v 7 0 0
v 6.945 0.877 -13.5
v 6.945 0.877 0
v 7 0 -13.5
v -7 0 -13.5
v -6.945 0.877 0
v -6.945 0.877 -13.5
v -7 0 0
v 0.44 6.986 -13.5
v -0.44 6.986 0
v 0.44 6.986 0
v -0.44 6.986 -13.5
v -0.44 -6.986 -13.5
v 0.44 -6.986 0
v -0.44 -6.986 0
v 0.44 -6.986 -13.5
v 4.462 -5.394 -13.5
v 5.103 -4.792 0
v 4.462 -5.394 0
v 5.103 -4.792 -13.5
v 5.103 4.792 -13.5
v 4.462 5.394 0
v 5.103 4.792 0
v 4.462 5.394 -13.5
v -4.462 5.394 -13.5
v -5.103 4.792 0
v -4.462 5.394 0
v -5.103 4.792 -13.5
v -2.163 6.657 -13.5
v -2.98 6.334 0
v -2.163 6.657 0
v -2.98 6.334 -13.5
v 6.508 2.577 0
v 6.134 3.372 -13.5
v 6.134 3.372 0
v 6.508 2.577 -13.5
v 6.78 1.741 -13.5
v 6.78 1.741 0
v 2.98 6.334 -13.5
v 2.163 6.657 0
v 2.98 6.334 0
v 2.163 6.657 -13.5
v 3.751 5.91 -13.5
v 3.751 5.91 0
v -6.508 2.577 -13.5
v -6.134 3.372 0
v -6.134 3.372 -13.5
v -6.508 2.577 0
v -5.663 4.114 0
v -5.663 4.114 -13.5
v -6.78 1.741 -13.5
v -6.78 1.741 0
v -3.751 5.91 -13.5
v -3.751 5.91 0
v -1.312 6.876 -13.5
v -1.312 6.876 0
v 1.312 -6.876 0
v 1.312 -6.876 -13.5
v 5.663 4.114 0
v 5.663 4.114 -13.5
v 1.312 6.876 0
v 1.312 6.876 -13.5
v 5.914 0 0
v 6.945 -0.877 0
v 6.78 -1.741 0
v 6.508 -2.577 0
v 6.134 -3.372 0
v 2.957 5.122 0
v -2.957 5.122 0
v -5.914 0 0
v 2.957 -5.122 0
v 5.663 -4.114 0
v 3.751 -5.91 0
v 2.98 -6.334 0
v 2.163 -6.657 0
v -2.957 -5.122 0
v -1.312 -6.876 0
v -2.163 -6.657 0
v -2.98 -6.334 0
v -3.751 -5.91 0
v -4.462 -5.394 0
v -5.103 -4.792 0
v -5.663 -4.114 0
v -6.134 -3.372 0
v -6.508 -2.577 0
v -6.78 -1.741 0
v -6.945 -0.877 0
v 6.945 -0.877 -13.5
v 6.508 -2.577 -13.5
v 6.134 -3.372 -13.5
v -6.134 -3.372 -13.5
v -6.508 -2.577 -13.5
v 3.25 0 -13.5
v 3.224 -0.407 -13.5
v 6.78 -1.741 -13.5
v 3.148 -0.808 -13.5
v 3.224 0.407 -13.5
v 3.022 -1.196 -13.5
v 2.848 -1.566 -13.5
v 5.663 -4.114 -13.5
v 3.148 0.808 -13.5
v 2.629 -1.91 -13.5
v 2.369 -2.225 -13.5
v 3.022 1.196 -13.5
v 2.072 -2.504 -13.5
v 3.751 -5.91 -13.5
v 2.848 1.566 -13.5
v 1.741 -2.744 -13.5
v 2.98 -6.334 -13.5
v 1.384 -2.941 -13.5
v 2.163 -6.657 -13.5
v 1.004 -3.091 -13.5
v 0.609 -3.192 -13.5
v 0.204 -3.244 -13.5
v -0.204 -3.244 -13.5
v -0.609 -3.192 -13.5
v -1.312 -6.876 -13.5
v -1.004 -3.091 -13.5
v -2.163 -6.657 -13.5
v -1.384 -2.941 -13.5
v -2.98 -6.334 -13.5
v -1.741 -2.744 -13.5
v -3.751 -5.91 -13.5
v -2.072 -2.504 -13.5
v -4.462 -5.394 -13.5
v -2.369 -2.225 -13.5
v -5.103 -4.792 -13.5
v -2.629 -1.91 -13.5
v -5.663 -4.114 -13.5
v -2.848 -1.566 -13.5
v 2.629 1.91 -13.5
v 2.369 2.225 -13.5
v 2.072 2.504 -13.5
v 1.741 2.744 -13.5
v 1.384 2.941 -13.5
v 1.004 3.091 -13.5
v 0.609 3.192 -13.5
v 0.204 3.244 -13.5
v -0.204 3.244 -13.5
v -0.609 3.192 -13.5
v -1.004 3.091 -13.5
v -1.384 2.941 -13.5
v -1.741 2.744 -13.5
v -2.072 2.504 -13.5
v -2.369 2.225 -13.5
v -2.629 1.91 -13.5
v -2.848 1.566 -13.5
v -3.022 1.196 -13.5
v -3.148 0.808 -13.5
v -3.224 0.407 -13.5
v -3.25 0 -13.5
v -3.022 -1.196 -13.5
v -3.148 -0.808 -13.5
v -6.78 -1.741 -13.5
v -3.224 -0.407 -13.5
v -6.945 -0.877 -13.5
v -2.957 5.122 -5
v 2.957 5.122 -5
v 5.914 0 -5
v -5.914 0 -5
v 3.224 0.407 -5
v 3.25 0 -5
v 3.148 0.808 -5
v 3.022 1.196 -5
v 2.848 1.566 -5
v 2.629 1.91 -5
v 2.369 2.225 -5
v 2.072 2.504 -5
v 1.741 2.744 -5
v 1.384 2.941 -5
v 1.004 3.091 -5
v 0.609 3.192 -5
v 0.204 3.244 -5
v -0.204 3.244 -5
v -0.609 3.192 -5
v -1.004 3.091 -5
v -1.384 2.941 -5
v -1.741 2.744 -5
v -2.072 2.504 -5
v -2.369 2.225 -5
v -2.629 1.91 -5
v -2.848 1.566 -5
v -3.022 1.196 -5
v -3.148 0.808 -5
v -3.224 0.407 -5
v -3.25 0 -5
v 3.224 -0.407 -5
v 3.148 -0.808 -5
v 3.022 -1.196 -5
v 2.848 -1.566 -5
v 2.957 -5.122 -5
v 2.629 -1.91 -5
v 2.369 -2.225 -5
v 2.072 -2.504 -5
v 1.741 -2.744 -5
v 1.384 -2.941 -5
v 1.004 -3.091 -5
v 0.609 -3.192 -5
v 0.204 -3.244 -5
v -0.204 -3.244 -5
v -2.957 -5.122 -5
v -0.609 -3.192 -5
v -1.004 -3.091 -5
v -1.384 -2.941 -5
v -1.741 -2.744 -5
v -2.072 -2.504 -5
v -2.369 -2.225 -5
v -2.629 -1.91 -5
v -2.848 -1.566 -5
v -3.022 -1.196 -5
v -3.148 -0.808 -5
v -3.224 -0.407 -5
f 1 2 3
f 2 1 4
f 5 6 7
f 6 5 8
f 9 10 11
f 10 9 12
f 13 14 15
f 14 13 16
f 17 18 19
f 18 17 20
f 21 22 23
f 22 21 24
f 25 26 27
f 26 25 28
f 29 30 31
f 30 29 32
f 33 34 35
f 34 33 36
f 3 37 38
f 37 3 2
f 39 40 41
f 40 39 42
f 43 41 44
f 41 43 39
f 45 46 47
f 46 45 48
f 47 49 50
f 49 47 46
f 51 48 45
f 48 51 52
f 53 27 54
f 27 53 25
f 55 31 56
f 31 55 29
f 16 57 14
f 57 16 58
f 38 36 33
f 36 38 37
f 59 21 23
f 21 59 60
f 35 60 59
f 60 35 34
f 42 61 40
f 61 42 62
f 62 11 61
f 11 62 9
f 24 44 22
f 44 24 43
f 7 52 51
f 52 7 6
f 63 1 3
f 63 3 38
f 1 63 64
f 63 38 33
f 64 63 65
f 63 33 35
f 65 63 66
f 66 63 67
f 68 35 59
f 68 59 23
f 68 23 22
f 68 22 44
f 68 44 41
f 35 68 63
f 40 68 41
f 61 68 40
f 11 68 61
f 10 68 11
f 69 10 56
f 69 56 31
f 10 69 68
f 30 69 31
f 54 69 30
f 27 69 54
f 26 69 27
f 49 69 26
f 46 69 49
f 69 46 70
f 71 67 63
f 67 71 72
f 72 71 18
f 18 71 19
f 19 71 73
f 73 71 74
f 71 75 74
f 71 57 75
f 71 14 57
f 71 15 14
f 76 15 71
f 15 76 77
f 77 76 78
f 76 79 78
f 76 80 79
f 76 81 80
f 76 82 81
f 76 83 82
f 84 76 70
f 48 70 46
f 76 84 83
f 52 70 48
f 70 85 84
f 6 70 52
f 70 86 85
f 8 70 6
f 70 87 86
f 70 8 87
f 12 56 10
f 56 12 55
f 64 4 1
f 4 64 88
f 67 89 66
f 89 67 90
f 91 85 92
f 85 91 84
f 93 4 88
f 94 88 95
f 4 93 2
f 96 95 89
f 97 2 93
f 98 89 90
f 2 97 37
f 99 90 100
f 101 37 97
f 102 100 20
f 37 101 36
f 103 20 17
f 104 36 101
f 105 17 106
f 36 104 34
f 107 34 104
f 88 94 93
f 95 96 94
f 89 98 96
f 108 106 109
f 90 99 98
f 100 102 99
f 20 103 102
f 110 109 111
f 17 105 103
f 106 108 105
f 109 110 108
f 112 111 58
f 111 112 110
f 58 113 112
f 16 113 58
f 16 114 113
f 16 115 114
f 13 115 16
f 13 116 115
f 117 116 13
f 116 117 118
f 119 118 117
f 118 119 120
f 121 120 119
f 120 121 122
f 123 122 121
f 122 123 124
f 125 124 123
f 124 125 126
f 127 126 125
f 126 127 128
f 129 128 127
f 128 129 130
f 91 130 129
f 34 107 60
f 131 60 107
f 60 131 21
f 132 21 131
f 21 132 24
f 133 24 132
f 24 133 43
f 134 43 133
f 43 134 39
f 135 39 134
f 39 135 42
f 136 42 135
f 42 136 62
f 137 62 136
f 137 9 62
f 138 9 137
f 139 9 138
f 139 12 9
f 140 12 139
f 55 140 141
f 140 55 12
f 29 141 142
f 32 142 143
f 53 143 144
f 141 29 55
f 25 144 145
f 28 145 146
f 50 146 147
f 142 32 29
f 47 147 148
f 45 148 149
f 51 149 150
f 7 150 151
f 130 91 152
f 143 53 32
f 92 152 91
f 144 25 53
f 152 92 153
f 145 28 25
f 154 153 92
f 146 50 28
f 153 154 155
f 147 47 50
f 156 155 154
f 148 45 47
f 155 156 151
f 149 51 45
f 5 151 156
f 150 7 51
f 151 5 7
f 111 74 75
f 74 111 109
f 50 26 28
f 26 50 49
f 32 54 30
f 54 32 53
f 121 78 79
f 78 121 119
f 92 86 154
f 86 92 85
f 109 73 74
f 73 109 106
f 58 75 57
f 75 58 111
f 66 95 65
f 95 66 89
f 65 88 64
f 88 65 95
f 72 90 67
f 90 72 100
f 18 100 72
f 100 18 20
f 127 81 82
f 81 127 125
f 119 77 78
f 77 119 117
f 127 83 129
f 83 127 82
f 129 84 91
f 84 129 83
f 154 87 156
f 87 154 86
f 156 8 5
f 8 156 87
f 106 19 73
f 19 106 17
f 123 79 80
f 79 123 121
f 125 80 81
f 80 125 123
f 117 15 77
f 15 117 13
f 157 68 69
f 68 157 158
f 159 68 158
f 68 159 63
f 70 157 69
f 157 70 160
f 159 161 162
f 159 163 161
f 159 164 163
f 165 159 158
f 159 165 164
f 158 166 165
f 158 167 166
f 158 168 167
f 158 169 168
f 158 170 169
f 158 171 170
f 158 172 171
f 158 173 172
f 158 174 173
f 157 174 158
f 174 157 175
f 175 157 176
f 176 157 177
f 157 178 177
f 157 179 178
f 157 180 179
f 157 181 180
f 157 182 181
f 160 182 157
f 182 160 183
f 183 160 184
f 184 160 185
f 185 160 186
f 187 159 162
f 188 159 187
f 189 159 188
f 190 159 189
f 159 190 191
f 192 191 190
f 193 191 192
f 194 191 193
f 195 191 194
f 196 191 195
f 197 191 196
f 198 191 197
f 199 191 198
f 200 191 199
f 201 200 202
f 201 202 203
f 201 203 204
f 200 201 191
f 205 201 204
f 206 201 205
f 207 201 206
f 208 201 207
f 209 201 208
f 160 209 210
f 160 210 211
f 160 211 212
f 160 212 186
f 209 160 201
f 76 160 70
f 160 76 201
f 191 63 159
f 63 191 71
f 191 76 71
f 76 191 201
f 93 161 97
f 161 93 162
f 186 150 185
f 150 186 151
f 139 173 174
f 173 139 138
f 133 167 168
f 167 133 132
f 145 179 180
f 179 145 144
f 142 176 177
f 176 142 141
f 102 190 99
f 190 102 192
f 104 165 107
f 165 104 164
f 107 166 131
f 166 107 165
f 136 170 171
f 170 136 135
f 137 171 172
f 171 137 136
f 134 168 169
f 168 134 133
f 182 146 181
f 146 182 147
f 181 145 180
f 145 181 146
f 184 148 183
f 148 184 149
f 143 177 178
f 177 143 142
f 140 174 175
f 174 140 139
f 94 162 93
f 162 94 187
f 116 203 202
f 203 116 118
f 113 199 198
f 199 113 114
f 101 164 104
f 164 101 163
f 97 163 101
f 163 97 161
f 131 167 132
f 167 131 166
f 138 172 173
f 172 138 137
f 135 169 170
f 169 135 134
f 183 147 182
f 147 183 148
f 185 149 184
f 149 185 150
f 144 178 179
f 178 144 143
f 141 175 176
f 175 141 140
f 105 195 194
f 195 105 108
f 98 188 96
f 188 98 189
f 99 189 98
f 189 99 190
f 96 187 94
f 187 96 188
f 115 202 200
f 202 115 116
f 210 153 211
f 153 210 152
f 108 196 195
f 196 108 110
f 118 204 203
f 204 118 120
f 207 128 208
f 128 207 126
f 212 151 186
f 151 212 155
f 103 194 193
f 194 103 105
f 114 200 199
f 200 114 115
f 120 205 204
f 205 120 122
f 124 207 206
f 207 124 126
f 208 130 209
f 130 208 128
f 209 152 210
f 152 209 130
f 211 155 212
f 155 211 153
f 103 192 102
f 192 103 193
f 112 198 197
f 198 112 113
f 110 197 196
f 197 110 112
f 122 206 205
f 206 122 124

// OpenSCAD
$fn = 50;


difference() {
	union() {
		translate(v = [0, 0, -13.5000000000]) {
			cylinder(h = 13.5000000000, r = 7.0000000000);
		}
		translate(v = [0, 0, -12.0000000000]) {
			cylinder(h = 12, r = 2.8750000000);
		}
	}
	union() {
		translate(v = [0, 0, 0]) {
			rotate(a = [0, 0, 0]) {
				difference() {
					union() {
						translate(v = [0, 0, -5]) {
							linear_extrude(height = 5) {
								polygon(points = [[5.9142500000, 0.0000000000], [2.9571250000, 5.1218907443], [-2.9571250000, 5.1218907443], [-5.9142500000, 0.0000000000], [-2.9571250000, -5.1218907443], [2.9571250000, -5.1218907443]]);
							}
						}
					}
					union();
				}
			}
		}
		#translate(v = [0, 0, -100.0000000000]) {
			cylinder(h = 200, r = 3.2500000000);
		}
	}
}
